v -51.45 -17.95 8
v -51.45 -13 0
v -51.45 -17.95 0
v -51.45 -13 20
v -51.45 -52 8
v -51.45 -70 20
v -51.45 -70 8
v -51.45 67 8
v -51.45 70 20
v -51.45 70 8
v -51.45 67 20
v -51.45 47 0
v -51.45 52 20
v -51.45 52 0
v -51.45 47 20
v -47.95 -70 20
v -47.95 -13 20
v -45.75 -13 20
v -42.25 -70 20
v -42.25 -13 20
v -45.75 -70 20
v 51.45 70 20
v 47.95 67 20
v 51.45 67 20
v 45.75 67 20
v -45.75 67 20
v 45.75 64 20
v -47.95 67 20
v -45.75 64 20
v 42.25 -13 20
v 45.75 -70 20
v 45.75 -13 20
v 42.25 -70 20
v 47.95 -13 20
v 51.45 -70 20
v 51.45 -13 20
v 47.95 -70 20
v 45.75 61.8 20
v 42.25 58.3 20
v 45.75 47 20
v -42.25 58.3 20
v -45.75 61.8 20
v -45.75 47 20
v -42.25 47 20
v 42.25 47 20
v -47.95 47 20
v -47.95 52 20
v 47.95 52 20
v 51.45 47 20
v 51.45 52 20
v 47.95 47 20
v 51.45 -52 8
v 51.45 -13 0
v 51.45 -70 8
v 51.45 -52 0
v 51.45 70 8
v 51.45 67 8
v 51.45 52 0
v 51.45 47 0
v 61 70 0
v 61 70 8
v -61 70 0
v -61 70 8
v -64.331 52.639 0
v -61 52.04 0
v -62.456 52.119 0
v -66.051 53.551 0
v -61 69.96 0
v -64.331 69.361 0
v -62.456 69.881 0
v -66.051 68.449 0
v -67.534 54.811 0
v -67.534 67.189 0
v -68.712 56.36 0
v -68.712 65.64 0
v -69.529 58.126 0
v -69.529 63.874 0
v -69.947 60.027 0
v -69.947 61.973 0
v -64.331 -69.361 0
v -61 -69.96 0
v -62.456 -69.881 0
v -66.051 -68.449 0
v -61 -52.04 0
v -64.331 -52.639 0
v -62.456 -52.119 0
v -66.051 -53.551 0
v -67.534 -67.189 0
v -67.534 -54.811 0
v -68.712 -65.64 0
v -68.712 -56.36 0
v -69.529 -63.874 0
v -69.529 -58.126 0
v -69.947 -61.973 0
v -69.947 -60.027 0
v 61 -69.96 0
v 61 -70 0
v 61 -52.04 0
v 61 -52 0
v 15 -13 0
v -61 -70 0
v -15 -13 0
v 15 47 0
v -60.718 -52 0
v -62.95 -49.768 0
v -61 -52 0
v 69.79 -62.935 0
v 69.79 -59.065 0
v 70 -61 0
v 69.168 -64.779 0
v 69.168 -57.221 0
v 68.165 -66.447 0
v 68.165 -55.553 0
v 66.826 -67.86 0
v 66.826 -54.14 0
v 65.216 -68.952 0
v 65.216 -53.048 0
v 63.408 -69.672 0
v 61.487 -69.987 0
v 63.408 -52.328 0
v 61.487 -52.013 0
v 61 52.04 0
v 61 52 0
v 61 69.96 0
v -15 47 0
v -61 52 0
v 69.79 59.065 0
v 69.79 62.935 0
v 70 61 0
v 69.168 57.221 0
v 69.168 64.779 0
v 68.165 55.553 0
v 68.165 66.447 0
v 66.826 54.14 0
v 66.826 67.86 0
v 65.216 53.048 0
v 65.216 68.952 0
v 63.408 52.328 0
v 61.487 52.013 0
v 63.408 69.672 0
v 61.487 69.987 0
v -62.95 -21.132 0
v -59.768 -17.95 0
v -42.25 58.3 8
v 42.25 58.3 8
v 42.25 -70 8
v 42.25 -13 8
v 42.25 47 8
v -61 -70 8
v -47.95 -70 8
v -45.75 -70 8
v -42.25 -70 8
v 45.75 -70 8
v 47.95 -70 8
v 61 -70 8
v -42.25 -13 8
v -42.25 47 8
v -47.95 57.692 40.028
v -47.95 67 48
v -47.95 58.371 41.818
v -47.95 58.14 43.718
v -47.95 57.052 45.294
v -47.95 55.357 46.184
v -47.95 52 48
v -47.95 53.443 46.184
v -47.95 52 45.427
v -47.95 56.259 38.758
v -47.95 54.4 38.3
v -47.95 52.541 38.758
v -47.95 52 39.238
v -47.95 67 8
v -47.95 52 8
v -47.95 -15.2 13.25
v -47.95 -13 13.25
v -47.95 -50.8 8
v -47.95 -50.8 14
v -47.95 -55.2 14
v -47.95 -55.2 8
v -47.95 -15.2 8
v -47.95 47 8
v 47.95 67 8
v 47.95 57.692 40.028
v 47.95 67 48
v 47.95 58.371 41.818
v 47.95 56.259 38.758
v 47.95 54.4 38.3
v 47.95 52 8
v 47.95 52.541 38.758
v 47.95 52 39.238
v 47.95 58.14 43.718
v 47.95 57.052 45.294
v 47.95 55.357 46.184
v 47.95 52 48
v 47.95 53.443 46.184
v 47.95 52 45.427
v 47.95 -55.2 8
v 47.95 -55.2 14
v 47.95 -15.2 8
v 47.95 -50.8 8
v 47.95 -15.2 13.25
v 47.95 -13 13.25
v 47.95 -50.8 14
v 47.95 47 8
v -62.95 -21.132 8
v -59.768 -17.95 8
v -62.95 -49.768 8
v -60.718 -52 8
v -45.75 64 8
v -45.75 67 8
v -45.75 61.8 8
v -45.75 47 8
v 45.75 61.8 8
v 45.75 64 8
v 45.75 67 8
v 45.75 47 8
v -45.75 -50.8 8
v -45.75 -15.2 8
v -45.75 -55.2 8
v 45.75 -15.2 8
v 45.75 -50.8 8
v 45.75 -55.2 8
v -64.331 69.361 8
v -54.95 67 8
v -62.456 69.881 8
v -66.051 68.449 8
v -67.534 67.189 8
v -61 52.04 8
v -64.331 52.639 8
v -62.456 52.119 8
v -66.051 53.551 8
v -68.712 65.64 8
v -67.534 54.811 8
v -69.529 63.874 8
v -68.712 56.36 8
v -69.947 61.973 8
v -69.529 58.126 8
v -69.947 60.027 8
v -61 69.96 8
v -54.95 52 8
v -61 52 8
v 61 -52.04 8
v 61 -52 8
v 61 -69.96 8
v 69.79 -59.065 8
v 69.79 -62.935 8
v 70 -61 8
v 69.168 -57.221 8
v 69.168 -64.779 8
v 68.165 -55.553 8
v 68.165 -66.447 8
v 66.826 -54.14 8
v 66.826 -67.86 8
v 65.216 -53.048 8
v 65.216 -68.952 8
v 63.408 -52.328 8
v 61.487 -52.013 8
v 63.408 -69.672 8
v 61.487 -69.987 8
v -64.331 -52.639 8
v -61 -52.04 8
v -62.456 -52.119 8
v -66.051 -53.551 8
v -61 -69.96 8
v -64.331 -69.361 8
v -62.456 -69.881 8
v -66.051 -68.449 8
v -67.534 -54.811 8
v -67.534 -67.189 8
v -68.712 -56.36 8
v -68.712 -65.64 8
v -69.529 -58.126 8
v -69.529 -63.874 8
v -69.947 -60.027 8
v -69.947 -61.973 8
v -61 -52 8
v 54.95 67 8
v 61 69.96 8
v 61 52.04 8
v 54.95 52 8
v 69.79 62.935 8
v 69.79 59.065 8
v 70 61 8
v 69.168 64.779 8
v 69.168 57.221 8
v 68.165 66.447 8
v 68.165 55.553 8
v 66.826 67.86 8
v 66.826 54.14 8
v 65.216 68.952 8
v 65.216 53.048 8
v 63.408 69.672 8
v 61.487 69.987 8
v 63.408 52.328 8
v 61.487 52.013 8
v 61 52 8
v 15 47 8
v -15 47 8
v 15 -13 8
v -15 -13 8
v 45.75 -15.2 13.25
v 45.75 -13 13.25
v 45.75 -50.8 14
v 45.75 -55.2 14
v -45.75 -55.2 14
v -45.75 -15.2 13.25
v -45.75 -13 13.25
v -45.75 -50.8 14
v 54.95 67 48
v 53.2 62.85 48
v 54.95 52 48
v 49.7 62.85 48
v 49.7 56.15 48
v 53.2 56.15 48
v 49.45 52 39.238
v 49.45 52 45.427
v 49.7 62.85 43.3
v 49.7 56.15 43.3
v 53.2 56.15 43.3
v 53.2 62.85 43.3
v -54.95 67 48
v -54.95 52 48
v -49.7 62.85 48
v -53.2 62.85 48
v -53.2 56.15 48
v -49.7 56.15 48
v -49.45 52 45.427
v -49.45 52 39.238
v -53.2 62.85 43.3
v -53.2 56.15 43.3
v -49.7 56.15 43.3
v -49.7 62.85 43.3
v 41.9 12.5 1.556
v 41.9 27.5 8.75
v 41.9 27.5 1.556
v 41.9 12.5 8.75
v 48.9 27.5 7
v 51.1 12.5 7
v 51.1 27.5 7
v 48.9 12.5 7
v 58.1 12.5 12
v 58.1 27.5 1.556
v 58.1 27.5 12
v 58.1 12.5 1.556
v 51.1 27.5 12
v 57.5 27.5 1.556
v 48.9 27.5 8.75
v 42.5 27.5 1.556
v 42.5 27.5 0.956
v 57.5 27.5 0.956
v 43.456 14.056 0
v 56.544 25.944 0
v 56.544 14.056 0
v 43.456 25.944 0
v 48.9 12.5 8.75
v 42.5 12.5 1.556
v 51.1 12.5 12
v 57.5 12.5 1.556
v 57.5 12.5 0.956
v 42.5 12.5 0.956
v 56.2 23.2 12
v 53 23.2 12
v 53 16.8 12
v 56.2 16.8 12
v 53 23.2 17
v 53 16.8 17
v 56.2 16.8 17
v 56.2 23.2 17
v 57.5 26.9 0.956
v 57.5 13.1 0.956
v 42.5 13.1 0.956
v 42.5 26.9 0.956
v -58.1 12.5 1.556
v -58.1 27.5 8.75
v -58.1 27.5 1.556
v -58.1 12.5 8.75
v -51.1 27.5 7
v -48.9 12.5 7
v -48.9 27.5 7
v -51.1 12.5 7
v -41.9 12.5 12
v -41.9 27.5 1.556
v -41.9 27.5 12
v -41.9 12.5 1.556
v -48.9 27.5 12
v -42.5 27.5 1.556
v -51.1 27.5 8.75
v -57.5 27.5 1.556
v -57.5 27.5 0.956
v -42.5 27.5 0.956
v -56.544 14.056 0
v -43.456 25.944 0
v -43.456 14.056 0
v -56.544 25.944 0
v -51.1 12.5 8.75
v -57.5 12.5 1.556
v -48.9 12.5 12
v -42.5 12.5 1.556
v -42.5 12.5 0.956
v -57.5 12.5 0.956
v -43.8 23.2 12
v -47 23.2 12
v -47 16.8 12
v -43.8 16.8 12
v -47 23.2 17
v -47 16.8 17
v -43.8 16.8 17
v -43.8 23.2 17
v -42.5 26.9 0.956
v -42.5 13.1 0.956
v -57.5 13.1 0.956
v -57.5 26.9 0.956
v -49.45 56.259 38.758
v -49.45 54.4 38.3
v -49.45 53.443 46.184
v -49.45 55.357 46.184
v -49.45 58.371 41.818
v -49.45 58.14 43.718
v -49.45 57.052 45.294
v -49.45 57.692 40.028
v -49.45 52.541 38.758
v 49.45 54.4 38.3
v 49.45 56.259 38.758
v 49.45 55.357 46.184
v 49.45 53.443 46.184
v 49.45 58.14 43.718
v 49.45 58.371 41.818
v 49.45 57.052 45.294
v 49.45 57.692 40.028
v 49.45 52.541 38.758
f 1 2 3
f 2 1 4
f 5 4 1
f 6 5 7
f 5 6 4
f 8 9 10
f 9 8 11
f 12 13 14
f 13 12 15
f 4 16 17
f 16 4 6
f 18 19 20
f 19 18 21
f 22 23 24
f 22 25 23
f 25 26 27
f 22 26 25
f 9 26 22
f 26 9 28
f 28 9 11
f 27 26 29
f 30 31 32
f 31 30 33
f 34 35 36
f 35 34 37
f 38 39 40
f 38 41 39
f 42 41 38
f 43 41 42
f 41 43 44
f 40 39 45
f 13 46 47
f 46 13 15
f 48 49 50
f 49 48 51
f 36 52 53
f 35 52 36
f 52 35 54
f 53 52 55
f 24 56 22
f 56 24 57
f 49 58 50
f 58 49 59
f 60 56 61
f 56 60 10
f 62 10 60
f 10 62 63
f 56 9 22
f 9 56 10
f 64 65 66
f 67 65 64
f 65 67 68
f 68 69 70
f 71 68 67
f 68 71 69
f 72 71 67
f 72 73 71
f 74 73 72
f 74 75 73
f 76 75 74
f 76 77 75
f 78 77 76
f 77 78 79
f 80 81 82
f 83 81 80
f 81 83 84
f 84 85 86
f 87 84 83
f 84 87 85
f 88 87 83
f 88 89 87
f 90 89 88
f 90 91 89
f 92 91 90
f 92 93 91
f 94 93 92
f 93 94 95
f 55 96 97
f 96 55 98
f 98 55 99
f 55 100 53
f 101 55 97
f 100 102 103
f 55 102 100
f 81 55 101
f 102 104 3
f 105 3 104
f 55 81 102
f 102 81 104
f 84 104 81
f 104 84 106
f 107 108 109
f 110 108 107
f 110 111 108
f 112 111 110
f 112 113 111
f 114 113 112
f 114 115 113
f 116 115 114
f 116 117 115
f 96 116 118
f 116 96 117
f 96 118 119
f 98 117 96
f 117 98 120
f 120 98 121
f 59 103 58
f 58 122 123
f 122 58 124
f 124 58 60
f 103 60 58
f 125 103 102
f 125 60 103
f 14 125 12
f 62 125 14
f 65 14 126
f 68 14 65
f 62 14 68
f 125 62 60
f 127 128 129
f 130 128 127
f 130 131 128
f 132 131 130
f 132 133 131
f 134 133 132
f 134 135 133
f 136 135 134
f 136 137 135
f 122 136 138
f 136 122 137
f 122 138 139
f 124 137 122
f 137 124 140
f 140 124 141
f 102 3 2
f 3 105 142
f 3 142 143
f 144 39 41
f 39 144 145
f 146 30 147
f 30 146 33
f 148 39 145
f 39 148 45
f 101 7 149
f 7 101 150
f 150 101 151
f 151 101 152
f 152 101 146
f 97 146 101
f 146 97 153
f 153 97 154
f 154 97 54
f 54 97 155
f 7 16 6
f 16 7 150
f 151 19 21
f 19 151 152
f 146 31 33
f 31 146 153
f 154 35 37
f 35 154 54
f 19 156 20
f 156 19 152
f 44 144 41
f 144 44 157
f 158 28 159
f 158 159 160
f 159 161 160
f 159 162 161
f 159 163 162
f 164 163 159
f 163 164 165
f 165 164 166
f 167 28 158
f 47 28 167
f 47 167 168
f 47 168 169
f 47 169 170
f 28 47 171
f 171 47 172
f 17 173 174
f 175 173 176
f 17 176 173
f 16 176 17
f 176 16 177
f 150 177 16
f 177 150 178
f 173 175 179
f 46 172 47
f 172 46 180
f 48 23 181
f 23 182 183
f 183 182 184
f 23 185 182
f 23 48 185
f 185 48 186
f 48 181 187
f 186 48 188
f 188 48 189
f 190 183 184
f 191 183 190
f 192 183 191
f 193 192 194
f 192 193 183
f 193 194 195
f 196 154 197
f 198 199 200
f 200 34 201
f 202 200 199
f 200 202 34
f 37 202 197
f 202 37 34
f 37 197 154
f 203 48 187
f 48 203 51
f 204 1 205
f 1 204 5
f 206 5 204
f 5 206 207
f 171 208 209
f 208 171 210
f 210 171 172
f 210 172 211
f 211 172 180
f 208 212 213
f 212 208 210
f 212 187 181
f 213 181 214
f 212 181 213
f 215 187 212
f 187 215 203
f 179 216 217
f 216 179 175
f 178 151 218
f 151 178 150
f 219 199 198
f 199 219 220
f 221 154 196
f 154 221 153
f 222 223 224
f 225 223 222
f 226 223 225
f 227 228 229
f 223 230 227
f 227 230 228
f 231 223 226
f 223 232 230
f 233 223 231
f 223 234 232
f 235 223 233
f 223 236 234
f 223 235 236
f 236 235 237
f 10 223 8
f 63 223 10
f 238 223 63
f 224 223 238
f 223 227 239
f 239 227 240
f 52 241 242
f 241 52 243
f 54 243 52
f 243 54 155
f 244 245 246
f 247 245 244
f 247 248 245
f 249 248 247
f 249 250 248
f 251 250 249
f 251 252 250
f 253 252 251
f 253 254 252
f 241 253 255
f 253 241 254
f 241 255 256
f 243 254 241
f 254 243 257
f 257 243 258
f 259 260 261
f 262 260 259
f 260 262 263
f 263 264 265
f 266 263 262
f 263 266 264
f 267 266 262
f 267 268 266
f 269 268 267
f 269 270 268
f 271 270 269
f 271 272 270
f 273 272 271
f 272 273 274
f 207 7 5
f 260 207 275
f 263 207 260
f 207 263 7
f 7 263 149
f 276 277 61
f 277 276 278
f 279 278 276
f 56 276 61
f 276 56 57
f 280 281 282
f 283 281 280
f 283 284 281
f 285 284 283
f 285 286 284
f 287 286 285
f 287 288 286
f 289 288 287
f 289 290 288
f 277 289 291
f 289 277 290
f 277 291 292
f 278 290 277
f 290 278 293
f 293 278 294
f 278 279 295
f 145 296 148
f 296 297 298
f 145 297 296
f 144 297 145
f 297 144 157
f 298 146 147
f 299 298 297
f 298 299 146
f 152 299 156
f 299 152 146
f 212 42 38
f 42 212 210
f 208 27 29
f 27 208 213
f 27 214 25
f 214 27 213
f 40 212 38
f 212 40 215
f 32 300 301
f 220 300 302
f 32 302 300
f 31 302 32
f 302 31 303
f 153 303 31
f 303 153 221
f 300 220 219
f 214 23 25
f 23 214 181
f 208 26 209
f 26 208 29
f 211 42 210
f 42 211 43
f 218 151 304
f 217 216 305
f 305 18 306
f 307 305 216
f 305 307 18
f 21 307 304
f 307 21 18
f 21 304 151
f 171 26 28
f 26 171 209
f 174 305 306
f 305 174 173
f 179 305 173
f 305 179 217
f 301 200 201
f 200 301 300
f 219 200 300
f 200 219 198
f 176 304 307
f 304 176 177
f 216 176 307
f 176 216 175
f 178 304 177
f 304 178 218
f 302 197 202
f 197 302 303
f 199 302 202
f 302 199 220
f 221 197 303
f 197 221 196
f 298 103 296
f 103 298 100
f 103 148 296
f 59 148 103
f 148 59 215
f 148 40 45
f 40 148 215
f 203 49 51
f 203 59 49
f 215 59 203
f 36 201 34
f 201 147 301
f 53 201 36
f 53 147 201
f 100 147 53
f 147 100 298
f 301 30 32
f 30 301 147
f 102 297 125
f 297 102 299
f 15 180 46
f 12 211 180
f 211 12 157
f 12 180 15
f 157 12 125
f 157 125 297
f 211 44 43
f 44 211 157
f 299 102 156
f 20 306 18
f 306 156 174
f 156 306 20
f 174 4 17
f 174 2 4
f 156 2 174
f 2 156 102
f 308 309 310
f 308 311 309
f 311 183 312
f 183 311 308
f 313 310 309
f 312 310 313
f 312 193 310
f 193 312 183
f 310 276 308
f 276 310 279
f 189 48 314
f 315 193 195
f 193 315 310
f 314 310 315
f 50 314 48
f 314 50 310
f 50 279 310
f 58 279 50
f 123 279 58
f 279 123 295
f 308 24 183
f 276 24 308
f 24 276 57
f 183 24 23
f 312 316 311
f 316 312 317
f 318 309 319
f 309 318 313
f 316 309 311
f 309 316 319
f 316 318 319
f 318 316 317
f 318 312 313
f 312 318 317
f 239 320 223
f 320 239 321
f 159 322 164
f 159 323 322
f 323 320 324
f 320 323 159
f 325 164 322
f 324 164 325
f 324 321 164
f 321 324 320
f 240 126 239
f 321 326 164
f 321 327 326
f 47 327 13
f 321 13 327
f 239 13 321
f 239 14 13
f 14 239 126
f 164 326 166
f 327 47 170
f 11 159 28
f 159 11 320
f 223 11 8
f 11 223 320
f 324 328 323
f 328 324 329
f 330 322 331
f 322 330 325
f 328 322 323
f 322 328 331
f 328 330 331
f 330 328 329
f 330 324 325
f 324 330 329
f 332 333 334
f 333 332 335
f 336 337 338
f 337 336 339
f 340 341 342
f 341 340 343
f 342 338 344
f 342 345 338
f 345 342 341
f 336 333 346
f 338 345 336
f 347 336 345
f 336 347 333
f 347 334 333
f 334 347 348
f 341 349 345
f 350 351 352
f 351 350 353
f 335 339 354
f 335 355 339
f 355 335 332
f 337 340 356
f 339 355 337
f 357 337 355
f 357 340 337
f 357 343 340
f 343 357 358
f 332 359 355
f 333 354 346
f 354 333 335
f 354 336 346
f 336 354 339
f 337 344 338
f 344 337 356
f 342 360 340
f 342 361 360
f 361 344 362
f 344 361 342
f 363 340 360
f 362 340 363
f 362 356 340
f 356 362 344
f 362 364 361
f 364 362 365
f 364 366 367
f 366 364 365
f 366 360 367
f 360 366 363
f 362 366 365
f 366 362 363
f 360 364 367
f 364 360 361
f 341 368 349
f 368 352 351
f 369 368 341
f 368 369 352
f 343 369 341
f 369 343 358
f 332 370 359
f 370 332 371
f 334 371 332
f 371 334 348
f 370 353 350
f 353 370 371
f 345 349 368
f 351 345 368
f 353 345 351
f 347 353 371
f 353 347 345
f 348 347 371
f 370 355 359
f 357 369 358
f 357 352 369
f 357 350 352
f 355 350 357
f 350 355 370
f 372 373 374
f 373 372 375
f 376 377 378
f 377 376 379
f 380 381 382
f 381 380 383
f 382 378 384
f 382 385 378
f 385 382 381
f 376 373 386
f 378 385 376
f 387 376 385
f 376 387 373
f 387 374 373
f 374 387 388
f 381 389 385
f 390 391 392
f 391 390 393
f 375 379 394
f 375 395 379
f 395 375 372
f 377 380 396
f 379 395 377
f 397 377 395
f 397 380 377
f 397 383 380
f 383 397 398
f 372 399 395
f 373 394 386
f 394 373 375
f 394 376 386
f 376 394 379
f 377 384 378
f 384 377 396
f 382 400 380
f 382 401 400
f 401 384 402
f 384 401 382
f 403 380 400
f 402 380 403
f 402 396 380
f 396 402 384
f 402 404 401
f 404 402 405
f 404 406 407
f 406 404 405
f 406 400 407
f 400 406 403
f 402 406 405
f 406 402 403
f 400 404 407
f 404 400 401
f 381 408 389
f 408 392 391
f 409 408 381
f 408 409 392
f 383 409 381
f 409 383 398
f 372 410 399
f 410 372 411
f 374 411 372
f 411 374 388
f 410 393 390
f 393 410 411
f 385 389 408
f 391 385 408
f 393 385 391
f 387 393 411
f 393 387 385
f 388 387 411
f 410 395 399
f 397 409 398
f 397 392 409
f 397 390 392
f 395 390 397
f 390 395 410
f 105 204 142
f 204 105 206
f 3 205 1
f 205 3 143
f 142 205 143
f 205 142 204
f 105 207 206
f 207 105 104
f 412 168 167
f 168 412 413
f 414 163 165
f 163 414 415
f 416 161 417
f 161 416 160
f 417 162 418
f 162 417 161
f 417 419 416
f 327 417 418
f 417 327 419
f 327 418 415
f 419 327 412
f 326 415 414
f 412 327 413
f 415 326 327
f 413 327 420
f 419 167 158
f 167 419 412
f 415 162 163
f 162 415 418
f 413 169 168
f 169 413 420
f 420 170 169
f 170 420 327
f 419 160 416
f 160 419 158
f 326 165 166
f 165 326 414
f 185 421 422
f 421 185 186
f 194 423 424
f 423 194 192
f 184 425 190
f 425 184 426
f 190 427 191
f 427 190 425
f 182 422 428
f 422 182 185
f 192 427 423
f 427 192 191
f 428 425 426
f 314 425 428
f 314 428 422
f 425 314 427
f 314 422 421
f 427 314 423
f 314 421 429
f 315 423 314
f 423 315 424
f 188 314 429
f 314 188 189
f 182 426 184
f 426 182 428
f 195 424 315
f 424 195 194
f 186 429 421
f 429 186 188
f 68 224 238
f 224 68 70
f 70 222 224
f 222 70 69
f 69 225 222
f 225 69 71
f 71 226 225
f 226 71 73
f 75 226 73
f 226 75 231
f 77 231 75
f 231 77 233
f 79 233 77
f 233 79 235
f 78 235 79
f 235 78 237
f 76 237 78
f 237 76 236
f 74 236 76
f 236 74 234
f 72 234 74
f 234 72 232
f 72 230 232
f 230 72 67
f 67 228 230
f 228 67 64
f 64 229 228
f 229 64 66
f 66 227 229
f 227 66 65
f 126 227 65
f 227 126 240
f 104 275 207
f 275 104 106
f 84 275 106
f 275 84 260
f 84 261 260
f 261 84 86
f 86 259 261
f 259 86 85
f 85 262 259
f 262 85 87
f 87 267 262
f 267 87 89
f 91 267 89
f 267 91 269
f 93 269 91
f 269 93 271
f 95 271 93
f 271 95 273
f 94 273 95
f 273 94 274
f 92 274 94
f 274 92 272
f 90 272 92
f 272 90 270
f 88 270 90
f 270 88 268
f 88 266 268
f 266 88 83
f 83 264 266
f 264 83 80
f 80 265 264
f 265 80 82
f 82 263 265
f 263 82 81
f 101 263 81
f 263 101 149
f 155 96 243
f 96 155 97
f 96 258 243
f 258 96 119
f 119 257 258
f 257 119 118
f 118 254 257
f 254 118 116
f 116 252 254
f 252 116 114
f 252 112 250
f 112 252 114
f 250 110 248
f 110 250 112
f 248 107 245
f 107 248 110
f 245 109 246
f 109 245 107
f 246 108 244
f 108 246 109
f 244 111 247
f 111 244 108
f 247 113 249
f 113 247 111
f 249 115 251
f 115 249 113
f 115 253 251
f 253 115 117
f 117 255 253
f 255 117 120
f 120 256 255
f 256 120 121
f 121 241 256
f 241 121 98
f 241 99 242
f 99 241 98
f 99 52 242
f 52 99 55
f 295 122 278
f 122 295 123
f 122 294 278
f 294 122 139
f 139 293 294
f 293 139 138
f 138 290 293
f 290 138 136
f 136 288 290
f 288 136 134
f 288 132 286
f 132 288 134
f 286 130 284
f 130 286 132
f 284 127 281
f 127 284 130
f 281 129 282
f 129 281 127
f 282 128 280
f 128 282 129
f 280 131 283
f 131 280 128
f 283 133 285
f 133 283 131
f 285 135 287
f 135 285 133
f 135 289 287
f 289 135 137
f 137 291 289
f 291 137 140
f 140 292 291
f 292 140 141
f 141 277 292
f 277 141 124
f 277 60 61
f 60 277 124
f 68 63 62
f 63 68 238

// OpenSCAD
//variables, in mm
foot_width=140; //size of total object, width
foot_length=140;    //size of total object, length (y axis of printrbot)
leg_width=18;   //width of sticking-out-feet
frame_thick=2.2;  //thickness of metal printrbot frame
front_ledge=3;  //how much thickness in front of edge
protrude=3;     //how much the metal plates protrude past the side, i.e. the notch needed on the front
side_ledge=3.5;   //how much thickness on sides and inside
inside_width=91.5;    //space between metal walls, inside
lip=12;         //how tall to make the part that slides over the metal sides
lift=8;         //how thick of a baseplate
usb_thick=15;   //how thick usb strain relieft should be
usb_wide=35;    //width
usb_tall=41;    //height    
usb_w=11;       //width of usb plug
usb_h=8;        //height of usb plug
usb_y=102.45;  //center of plug, relative to front edge
usb_z=35;   //center of plug, relative to top of base plate
clip_h=45;  //how tall wrap around clip should be- top of base plate to bottom of groove
clip_split=5;  //where to split clip
clip_wide=15;   //width of clip
clip_groove=1.75;  //depth of groove on top of clip
clip_thick=7; //thickness of clip
tab_thick=3.2; //tab thickness, should be multiple of extrusion width
tab_wide=6.4; //tab width
tab_slop=.3;    //additional gab to have around slot for tab due to printer tolerances
tab_length=5;
gap_width=60;
gap_y=50;   //front edge of metal to middle of cutout
center_bar=30;
curve_40=2.35;
curve_80=5.25;
curve_120=6;

rivet1_z=34.3;
rivet1_y=12.6;
rivet2_z=27.75;
rivet2_y=113.5;
rivet_r=4;
rivet_thick=1.5;

//intermediate values
front_yy=front_ledge+protrude+frame_thick+side_ledge;
side_xx=side_ledge*2+frame_thick;
inner_xx=inside_width+2*(frame_thick+side_ledge);

module rivet1()
{
    translate([-1*(inside_width/2+frame_thick),foot_length/2-front_ledge-rivet1_y,lift+rivet1_z])
    {
        rotate([0,90,0])
        {
            cylinder(h=2*rivet_thick, r1=rivet_r, r2=rivet_r, center=true);
        }
    }
}



module rivet1a()
{
    translate([1*(inside_width/2+frame_thick),foot_length/2-front_ledge-rivet1_y,lift+rivet1_z])
    {
        rotate([0,90,0])
        {
            cylinder(h=2*rivet_thick, r1=rivet_r, r2=rivet_r, center=true);
        }
    }
}



module rivet2()
{
    translate([-1*(inside_width/2+frame_thick),foot_length/2-front_ledge-rivet2_y,lift+rivet2_z])
    {
        rotate([0,90,0])
        {
            cylinder(h=2*rivet_thick, r1=rivet_r, r2=rivet_r, center=true);
        }
    }
}


//supports due to curve
module curve_adj()
{

union()
    {
        translate([-1*(inside_width/2)-frame_thick/2,foot_length/2-front_ledge-40,lift])
        {
        cube([frame_thick*2,frame_thick*2,curve_40*2],center=true);
        }
        translate([1*(inside_width/2)+frame_thick/2,foot_length/2-front_ledge-40,lift])
        {
        cube([frame_thick*2,frame_thick*2,curve_40*2],center=true);
        }
        translate([-1*(inside_width/2)-frame_thick/2,foot_length/2-front_ledge-80,lift])
        {
        cube([frame_thick*2,frame_thick*2,curve_80*2],center=true);
        }
        translate([1*(inside_width/2)+frame_thick/2,foot_length/2-front_ledge-80,lift])
        {
        cube([frame_thick*2,frame_thick*2,curve_80*2],center=true);
        }
        translate([-1*(inside_width/2)-frame_thick/2,foot_length/2-front_ledge-120,lift])
        {
        cube([frame_thick*2,frame_thick*2,curve_120*2],center=true);
        }
        translate([1*(inside_width/2)+frame_thick/2,foot_length/2-front_ledge-120,lift])
        {
        cube([frame_thick*2,frame_thick*2,curve_120*2],center=true);
        }
    }
}
//baseplate
module base()
{
    linear_extrude(height=lift)
    union()
    {
    square(size=[(frame_thick+side_ledge)*2+inside_width,foot_length], center=true);
    translate([0,-1*((foot_length-leg_width)/2)])
        {
            union()
            {
            //legs
            square([foot_width-leg_width,leg_width],center=true);
            translate([foot_width/2-leg_width/2,0])
                {
                circle(r=leg_width/2,center=true);
                }
            translate([-1*(foot_width/2-leg_width/2),0])
                {
                circle(r=leg_width/2,center=true);
                }
            }
        }
    translate([0,1*((foot_length-leg_width)/2)])
        {
            //legs
            square([foot_width-leg_width,leg_width],center=true);
            translate([foot_width/2-leg_width/2,0])
                {
                circle(r=leg_width/2,center=true);
                }
            translate([-1*(foot_width/2-leg_width/2),0])
                {
                circle(r=leg_width/2,center=true);
                }
        }
    }
}
module slot()
{
    difference()
    {
        
        union()
        {
            //front prism
            translate([0,(foot_length-front_yy)/2,(lip+lift)/2])
            {
            cube([(frame_thick+side_ledge)*2+inside_width,front_yy,lip+lift],center=true);
            }
            translate([(inner_xx-side_xx)/2,0,(lip+lift)/2])
            {
            cube([side_xx,foot_length,lip+lift],center=true);
            }
            translate([-1*(inner_xx-side_xx)/2,0,(lip+lift)/2])
            {
            cube([side_xx,foot_length,lip+lift],center=true);
            }
        }
            
        
        difference()
        {
            union()
            {
                translate([0,((foot_length)/2)-front_ledge-frame_thick/2-protrude,(.5*lip+lift+.5)])
                {
                cube([(inside_width+frame_thick*2),frame_thick,lip+1],center=true);//1 so that faces don't overlap
                }
                translate([(inner_xx-side_xx)/2,-1*(front_ledge),(.5*lip+lift+.5)])
                {
                cube([frame_thick,foot_length,lip+1],center=true);
                }
                translate([-1*(inner_xx-side_xx)/2,-1*(front_ledge),(.5*lip+lift+.5)])
                {
                cube([frame_thick,foot_length,lip+1],center=true);
                }
            }
            curve_adj();
        }
    }
}

module usb()
{
    difference()
    {
        difference()
        {
            translate([-1*(frame_thick+(inside_width+usb_thick)/2),(foot_length/2)-front_ledge-usb_y,(usb_tall+lift)/2])
            {
            cube([usb_thick,usb_wide,usb_tall+lift],center=true);
            }
            translate([-1*(frame_thick+(inside_width+usb_thick)/2),(foot_length/2)-front_ledge-usb_y,lift+usb_z])
            {
            cube([usb_thick*2,usb_w,usb_h],center=true);
            }
        }
    //knock off edges
        union()
        {
            translate([-1*(frame_thick+inside_width/2+usb_thick),(foot_length/2)-front_ledge-usb_y+usb_wide/2,(usb_tall+lift)/2])
            {
                rotate([0,0,45])
                {
                    cube([usb_thick*.3,usb_thick*.3,usb_tall+lift*2], center=true);
                }
            }
            //knock off edges
            translate([-1*(frame_thick+inside_width/2+usb_thick),(foot_length/2)-front_ledge-usb_y-usb_wide/2,(usb_tall+lift)/2])
            {
                rotate([0,0,45])
                {
                    cube([usb_thick*.3,usb_thick*.3,usb_tall+lift*2], center=true);
                }
            }
        }
    }
}

module post()
{
    difference()
    {
        translate([inside_width/2+frame_thick+clip_thick/2,foot_length/2-front_ledge-clip_wide/2,lift+(clip_h-clip_split)/2-lift/2])
        {
            cube([clip_thick,clip_wide,clip_h-clip_split+lift],center=true);
        }
        translate([1*(inside_width/2+frame_thick+clip_thick/2),foot_length/2-front_ledge-clip_wide/2,lift+(clip_h-clip_split)])
        {
            cube([tab_thick+tab_slop,tab_wide+tab_slop,(tab_length-tab_slop)*2],center=true);
        }
    }
    difference()
    {
        translate([-1*(inside_width/2+frame_thick+clip_thick/2),foot_length/2-front_ledge-clip_wide/2,lift+(clip_h-clip_split)/2-lift/2])
        {
            cube([clip_thick,clip_wide,clip_h-clip_split+lift],center=true);
        }
        translate([-1*(inside_width/2+frame_thick+clip_thick/2),foot_length/2-front_ledge-clip_wide/2,lift+(clip_h-clip_split)])
        {
            cube([tab_thick+tab_slop,tab_wide+tab_slop,(tab_length-tab_slop)*2],center=true);
        }
    }
}


module air_cut()
{
    translate([inside_width/2+center_bar/2,foot_length/2-front_ledge-gap_y,0])
    {
    cube([(inside_width),gap_width,lift+lip*10], center=true);
    }
    translate([-1*(inside_width/2+center_bar/2),foot_length/2-front_ledge-gap_y,0])
    {
    cube([(inside_width),gap_width,lift+lip*10], center=true);
    }
}

difference()
{
    union()
    {
        base();
        slot();
        difference()
        {
            //just the base
            difference()
            {
                usb();
                translate([0,0,lift+100])
                {
                    cube([200,200,200],center=true);
                }
            }
            rivet2();
        }
        difference()
        {
            post();
            union()
            {
                rivet1();
                rivet1a();
            }
        }
    }
    air_cut();
}

module clip()
{
    difference()
    {
        union()
        {
        translate([200,0,clip_thick/2])
            {
                //base of clip
            cube([clip_thick*2+frame_thick,clip_wide,clip_thick],center=true);
            }
        translate([200-(clip_thick*2+frame_thick)/2+clip_thick/2,0,clip_thick/2+clip_groove/2])
            {
                //short bit
            cube([clip_thick,clip_wide,clip_thick+clip_groove],center=true);
            }
        translate([200+(clip_thick*2+frame_thick)/2-clip_thick/2,0,clip_thick/2+clip_split/2])
            {//tall bit
            cube([clip_thick,clip_wide,clip_thick+clip_split],center=true);
            }
        translate([200+(clip_thick*2+frame_thick)/2-clip_thick/2,0,clip_split+clip_thick])
            {//pin
            cube([tab_thick,tab_wide,tab_length*2],center=true);
            }
        }
        union()
        {
            translate([200+clip_thick+frame_thick/2,0,0])
            {
                //tall side
                rotate([0,45,0])
                {   
                    cube([frame_thick,clip_wide,frame_thick],center=true);
                }
            }
            translate([200-clip_thick-frame_thick/2,0,0])
            {
                //short side
                rotate([0,45,0])
                {   
                    cube([frame_thick,clip_wide,frame_thick],center=true);
                }
            }
            translate([200,clip_wide/2,0])
            {
                //other sides
                rotate([45,0,0])
                {   
                    cube([clip_wide,frame_thick,frame_thick],center=true);
                }
            }
            translate([200,-clip_wide/2,0])
            {
                //other sides
                rotate([45,0,0])
                {   
                    cube([clip_wide,frame_thick,frame_thick],center=true);
                }
            }
        }
    }
}
//clip();

translate([-150,20,0]) clip();
translate([-250,20,0]) clip();
